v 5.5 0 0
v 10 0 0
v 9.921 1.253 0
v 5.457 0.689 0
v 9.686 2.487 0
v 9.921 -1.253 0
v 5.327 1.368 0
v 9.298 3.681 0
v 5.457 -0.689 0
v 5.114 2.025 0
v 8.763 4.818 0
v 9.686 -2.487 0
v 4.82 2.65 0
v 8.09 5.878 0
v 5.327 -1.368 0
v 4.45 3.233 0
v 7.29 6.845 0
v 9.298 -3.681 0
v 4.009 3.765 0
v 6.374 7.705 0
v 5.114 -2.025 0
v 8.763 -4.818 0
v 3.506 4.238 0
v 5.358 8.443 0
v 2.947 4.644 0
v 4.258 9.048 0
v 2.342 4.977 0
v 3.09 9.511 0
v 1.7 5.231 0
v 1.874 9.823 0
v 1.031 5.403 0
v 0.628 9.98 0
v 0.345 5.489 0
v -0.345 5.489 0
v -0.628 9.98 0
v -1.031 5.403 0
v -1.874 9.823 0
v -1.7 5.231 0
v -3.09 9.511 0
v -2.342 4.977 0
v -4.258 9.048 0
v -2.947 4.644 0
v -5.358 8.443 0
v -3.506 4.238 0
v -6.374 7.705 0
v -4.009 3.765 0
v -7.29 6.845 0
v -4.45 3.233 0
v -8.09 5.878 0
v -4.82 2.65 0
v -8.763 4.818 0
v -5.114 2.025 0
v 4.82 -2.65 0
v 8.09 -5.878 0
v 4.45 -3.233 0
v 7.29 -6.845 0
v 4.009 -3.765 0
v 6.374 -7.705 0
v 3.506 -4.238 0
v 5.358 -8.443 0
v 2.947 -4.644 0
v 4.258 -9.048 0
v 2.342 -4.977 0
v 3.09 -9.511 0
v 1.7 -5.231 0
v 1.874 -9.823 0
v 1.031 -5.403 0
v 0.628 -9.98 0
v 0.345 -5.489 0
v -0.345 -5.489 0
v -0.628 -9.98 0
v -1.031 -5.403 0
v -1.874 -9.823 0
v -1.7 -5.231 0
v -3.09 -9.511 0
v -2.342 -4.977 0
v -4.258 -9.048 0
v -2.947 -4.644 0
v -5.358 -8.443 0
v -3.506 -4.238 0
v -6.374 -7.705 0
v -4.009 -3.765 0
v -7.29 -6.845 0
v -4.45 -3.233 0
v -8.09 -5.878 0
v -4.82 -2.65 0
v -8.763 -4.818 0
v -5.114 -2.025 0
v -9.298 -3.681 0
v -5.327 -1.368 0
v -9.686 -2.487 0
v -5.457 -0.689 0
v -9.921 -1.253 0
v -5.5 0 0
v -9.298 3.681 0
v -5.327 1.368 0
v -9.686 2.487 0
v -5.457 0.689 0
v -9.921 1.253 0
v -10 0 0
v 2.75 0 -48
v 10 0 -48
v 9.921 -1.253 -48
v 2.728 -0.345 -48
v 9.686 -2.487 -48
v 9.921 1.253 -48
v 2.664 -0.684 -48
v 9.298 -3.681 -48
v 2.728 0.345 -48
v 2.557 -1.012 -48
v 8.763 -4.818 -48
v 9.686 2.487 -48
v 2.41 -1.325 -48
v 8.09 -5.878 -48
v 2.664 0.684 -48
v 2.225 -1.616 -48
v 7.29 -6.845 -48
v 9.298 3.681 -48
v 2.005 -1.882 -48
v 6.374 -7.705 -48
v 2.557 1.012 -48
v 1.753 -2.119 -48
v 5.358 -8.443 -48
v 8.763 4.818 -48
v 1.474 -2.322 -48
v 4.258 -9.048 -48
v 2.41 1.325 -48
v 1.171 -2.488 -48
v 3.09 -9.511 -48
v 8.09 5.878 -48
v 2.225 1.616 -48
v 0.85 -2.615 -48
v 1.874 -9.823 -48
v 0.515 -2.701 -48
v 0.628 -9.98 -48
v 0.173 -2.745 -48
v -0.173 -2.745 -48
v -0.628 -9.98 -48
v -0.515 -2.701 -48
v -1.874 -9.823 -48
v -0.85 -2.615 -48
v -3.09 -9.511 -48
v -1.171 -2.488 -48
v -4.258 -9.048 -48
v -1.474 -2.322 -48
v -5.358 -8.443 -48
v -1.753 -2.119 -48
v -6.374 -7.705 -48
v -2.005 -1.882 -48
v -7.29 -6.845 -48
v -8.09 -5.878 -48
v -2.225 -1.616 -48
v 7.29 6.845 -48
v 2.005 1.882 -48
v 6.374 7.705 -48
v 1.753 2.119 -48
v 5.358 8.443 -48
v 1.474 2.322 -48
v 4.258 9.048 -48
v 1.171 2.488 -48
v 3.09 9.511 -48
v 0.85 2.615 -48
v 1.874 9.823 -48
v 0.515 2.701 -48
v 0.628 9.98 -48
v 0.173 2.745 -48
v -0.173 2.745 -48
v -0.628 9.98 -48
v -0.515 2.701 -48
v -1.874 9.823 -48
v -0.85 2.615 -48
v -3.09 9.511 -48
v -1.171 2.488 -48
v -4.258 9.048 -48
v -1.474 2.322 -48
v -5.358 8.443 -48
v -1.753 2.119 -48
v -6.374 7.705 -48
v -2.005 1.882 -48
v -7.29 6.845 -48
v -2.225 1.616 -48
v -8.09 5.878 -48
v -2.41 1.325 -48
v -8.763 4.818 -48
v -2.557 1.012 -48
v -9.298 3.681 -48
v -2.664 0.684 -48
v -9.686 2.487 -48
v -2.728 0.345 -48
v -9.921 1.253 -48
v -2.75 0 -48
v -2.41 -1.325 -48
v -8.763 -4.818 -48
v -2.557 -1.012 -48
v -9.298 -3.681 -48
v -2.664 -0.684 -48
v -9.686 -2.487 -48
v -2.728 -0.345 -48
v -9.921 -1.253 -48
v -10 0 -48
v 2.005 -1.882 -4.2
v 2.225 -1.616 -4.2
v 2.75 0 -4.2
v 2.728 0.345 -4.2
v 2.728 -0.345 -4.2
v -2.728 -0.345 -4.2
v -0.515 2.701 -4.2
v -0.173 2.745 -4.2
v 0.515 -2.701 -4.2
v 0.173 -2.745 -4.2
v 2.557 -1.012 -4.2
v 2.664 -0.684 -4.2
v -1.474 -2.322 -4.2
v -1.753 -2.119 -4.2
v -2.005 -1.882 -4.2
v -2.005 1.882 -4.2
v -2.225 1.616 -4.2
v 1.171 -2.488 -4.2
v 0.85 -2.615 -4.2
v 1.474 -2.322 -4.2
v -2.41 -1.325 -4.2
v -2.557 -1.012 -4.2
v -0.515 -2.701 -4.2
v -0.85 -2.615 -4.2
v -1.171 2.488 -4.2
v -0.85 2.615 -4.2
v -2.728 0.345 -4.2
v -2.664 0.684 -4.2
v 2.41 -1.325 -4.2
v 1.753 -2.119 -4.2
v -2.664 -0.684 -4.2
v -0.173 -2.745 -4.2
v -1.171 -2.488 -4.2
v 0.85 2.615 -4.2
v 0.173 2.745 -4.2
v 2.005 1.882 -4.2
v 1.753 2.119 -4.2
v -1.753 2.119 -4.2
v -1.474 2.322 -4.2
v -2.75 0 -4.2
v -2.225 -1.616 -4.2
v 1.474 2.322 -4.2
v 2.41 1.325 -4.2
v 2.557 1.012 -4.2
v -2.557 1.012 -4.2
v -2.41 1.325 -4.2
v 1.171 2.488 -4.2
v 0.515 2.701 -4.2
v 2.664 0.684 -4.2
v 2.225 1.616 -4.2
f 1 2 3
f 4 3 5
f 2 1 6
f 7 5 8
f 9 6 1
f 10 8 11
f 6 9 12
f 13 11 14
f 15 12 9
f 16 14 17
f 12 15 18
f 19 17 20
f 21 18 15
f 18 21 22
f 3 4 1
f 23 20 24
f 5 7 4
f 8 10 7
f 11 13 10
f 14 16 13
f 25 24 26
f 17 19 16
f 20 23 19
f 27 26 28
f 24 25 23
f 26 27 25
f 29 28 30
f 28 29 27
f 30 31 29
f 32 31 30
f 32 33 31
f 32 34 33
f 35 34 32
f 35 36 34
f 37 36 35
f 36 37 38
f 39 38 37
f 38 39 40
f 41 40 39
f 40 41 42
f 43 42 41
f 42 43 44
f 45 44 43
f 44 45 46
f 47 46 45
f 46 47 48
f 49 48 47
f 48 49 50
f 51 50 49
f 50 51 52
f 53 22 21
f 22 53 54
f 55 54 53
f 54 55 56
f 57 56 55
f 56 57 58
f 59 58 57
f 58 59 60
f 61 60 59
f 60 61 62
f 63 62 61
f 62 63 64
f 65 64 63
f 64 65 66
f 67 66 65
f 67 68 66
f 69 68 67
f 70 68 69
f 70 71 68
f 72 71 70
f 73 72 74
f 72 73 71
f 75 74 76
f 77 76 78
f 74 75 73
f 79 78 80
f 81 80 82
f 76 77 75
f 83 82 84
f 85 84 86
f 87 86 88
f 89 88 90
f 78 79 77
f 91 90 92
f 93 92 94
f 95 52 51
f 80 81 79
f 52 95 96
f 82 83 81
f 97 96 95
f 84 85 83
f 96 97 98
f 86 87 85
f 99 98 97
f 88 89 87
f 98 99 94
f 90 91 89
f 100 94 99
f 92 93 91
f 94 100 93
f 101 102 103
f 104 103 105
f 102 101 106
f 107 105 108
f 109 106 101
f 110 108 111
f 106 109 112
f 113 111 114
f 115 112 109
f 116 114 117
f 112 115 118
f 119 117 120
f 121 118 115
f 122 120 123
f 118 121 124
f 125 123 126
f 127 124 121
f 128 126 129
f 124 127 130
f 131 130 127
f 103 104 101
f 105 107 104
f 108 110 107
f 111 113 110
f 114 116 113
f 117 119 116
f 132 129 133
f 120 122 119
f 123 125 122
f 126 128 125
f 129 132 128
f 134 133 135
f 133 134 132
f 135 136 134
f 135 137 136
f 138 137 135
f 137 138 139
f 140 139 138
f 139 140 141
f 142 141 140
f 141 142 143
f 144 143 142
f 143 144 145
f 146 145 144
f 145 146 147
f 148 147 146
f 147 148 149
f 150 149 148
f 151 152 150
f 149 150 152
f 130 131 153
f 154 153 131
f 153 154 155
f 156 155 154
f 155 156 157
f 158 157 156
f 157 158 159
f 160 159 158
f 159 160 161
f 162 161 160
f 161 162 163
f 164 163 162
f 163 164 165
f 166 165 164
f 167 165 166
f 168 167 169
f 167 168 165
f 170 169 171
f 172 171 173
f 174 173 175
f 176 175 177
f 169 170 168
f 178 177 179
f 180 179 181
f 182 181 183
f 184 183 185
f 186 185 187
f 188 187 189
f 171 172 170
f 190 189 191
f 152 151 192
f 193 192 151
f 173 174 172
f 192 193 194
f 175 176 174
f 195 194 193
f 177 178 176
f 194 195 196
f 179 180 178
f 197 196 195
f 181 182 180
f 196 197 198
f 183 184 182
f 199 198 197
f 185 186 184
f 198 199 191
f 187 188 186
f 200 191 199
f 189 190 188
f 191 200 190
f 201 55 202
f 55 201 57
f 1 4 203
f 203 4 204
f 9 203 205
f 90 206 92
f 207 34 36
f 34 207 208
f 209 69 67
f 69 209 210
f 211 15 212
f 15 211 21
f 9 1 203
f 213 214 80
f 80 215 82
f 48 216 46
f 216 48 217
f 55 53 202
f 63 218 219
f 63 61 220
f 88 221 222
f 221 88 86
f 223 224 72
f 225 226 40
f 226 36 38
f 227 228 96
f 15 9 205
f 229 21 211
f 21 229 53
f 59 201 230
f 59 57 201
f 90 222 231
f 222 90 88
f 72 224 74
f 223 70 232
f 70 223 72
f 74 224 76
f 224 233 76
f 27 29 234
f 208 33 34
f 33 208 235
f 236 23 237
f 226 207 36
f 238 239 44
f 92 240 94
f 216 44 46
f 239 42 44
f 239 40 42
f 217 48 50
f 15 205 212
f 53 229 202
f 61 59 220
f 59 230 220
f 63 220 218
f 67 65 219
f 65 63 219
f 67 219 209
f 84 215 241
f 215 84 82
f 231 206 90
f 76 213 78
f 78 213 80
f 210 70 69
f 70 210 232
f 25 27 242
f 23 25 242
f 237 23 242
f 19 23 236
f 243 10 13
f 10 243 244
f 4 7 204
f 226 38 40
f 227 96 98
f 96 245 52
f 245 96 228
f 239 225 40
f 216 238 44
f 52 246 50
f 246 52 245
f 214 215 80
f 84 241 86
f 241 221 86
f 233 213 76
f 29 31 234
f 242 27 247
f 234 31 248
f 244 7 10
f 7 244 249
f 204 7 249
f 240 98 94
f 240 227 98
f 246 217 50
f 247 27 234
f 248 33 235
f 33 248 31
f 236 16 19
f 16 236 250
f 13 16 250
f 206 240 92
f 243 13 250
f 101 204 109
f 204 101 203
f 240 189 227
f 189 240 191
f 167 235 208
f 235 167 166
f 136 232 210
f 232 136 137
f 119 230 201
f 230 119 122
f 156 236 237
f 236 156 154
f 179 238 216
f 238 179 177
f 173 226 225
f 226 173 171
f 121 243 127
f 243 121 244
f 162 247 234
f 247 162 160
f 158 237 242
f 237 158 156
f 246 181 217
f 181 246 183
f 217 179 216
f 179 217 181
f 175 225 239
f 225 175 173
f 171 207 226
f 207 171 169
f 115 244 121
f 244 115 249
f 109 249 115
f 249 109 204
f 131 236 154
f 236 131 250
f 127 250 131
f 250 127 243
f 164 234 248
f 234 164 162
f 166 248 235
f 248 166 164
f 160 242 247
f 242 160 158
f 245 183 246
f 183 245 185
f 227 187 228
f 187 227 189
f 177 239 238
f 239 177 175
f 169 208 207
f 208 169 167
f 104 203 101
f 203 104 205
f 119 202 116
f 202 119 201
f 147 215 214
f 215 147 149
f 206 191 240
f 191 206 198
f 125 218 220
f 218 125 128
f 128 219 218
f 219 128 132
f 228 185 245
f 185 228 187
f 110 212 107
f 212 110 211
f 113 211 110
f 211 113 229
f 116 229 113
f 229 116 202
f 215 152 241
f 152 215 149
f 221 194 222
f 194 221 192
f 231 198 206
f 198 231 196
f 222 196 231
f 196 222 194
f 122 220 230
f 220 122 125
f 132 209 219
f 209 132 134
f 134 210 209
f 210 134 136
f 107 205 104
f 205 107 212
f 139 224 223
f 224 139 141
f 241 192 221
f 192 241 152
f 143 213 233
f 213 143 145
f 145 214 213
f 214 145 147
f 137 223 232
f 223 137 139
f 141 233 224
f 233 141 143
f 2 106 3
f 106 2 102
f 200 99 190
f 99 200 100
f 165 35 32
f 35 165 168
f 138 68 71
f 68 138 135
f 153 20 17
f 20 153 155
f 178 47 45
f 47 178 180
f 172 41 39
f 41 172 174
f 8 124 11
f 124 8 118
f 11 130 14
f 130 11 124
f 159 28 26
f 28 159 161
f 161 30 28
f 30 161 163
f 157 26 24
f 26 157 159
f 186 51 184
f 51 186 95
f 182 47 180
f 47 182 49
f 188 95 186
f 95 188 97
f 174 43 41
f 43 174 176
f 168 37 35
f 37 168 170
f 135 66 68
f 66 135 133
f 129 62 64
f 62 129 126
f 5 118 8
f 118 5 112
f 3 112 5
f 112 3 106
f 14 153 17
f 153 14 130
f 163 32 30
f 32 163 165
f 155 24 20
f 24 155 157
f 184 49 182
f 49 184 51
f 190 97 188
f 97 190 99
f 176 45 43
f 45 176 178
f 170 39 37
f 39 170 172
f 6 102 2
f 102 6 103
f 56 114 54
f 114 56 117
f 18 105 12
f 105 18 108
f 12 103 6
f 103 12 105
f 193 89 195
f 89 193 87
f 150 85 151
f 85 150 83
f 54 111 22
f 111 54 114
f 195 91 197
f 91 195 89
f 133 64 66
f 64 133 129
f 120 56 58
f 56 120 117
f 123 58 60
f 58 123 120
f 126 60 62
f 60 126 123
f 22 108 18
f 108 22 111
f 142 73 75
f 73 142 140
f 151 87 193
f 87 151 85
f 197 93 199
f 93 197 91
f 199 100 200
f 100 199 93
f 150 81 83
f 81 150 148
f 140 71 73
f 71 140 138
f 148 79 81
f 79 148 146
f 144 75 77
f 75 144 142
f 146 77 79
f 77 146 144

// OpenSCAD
$fn = 50;


difference() {
	union() {
		translate(v = [0, 0, -48.0000000000]) {
			cylinder(h = 48, r = 10.0000000000);
		}
	}
	union() {
		translate(v = [0, 0, 0]) {
			rotate(a = [0, 0, 0]) {
				difference() {
					union() {
						#translate(v = [0, 0, -48.0000000000]) {
							cylinder(h = 48, r = 2.2500000000);
						}
						#translate(v = [0, 0, -4.2000000000]) {
							cylinder(h = 4.2000000000, r = 10.0000000000, r1 = 2.7500000000, r2 = 5.5000000000);
						}
						#translate(v = [0, 0, -48.0000000000]) {
							cylinder(h = 48, r = 2.7500000000);
						}
						#translate(v = [0, 0, -48.0000000000]) {
							cylinder(h = 48, r = 2.2500000000);
						}
					}
					union();
				}
			}
		}
	}
}
